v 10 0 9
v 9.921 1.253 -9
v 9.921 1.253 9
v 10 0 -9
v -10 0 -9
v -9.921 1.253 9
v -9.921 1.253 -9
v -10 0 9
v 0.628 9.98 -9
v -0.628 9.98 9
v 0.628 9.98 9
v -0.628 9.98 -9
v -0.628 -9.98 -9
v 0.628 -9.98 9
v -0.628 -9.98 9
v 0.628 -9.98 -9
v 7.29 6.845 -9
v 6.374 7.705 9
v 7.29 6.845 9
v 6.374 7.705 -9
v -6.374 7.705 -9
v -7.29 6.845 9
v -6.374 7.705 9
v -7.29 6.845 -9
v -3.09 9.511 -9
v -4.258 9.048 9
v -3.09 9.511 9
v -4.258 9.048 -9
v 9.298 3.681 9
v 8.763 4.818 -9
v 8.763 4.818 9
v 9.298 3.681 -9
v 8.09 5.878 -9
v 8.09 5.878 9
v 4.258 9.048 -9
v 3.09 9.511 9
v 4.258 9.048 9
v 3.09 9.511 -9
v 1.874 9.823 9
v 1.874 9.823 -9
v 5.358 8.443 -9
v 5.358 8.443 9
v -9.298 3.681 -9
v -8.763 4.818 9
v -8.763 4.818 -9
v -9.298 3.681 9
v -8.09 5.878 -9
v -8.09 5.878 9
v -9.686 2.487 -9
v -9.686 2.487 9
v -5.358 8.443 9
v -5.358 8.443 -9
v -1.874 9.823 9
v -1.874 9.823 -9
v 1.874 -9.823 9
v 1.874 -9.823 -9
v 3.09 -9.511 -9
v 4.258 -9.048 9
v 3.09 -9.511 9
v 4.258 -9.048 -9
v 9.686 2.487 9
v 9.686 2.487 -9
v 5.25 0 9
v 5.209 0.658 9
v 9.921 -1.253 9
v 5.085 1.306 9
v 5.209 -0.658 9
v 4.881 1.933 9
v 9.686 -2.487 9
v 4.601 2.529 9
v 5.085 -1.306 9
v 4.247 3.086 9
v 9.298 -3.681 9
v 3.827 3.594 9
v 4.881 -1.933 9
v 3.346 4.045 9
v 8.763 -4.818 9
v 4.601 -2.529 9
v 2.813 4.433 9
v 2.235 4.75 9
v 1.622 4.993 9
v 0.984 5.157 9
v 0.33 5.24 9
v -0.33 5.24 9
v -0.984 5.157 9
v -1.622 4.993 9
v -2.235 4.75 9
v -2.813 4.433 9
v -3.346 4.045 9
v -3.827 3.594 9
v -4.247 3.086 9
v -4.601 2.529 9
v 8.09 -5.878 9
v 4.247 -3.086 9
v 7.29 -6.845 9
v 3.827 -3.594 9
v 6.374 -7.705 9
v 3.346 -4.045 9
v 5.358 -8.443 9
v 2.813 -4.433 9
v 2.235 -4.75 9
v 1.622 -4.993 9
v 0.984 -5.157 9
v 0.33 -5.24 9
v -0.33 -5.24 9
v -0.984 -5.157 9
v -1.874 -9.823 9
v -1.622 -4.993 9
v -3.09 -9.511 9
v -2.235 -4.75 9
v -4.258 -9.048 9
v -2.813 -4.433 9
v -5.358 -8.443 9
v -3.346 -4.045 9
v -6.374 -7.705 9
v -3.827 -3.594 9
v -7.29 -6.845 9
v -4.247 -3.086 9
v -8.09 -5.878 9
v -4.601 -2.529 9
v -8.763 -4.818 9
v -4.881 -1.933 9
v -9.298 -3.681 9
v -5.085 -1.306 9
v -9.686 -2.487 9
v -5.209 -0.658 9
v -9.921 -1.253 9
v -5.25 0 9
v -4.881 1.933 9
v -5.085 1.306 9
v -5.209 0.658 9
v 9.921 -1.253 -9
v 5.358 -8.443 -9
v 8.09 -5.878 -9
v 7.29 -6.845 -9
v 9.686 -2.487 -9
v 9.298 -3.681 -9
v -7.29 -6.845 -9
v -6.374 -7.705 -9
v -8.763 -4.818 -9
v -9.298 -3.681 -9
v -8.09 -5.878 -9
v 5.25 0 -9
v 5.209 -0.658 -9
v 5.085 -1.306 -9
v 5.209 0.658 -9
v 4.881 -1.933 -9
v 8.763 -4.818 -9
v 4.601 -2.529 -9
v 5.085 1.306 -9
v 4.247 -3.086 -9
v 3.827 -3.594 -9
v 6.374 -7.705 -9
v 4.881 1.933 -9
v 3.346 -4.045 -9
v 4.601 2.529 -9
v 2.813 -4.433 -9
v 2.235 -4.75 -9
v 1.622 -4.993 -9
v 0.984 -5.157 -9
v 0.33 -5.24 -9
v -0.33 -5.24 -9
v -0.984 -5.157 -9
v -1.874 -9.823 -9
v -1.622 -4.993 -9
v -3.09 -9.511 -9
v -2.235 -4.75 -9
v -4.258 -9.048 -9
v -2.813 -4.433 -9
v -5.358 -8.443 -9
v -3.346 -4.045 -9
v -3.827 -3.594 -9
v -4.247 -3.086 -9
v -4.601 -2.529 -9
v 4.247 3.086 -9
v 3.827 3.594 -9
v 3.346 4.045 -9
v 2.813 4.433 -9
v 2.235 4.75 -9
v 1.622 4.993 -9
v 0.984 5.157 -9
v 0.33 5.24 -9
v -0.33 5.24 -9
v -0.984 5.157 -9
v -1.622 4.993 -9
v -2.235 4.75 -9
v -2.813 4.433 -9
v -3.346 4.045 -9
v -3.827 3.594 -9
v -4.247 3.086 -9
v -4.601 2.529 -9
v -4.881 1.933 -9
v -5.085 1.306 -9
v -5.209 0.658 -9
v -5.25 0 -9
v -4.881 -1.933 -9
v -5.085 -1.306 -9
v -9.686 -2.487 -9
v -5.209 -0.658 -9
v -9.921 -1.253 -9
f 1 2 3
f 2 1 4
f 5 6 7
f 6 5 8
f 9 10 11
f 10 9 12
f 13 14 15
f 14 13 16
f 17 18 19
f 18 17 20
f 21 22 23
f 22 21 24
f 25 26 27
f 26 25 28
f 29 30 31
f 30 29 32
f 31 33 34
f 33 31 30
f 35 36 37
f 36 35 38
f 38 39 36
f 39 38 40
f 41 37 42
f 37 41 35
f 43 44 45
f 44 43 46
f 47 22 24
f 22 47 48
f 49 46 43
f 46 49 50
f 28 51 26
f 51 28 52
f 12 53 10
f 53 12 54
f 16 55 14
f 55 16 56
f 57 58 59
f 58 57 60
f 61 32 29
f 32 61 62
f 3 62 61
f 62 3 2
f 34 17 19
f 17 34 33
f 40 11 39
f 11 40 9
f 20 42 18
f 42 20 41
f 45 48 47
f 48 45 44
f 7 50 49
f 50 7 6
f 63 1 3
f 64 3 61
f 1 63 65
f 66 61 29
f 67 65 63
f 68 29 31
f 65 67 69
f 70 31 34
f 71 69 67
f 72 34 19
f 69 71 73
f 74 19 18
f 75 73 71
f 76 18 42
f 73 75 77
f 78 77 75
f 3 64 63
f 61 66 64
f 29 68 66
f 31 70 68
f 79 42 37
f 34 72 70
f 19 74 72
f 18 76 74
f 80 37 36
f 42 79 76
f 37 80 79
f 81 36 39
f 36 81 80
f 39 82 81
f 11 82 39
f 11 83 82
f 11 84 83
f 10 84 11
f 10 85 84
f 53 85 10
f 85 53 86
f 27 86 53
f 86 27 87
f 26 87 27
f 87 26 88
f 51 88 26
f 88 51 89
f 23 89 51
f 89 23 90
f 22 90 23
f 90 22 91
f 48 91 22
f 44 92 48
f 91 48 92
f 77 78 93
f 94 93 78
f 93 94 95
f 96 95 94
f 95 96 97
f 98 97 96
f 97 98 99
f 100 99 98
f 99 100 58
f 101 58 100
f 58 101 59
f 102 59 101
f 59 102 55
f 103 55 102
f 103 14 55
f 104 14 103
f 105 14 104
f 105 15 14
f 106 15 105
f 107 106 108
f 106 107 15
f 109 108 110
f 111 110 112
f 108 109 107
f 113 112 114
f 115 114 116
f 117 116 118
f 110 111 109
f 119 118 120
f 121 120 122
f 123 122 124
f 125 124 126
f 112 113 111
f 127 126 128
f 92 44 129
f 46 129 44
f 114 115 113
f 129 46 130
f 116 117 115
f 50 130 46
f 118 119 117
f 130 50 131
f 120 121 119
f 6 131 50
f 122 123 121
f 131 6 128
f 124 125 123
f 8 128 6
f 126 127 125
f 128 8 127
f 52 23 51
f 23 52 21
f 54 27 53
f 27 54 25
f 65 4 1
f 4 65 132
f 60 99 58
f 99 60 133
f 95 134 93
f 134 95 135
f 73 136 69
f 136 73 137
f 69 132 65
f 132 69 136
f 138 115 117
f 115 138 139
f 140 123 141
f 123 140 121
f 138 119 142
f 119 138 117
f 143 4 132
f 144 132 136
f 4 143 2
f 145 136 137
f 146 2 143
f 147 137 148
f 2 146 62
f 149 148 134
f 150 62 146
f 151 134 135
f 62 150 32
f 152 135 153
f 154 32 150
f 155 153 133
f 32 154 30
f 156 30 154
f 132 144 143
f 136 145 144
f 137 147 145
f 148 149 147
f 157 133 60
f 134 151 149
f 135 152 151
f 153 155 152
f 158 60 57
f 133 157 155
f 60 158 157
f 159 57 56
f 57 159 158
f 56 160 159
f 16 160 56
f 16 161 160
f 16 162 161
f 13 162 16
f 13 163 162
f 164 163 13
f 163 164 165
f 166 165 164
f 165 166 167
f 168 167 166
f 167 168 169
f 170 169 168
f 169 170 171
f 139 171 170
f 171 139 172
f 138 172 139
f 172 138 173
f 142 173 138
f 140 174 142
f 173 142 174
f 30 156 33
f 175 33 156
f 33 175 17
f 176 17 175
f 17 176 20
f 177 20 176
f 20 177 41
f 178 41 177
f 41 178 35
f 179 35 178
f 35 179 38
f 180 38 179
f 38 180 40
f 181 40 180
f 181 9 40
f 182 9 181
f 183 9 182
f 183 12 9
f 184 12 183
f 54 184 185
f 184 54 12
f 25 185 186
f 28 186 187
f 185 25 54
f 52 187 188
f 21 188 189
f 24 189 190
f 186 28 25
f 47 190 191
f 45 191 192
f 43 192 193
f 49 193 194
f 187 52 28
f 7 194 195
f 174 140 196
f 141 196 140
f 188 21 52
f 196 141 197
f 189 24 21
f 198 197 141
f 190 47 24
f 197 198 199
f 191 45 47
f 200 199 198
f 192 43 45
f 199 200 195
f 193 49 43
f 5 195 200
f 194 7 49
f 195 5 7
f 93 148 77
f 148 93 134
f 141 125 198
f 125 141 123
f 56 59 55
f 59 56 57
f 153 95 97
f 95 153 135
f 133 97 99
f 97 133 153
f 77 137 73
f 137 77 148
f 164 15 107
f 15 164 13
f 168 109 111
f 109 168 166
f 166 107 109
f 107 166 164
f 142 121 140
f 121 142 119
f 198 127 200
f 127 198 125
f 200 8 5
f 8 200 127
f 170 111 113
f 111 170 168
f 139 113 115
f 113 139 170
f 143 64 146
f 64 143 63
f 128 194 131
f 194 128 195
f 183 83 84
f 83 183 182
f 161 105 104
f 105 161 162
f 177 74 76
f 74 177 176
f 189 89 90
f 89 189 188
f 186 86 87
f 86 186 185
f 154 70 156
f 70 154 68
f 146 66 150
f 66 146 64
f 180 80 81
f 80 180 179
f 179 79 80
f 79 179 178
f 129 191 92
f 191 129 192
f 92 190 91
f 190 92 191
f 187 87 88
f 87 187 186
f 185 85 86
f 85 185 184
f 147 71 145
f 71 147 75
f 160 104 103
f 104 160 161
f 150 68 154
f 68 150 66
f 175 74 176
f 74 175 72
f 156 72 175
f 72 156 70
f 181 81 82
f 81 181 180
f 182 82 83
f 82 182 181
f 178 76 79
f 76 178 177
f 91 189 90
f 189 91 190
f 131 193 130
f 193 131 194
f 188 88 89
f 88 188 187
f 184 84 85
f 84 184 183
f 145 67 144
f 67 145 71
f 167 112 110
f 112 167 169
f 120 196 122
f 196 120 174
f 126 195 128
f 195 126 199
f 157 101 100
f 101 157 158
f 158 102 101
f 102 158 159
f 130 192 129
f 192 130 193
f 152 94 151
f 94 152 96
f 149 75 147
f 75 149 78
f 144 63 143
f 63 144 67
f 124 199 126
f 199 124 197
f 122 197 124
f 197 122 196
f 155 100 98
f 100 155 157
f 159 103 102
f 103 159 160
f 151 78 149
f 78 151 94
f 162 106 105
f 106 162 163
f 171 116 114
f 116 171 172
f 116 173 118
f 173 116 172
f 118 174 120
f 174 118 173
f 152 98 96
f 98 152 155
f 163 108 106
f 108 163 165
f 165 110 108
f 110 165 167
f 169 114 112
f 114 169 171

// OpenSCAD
$fn = 50;


difference() {
	union() {
		translate(v = [0, 0, -9.0000000000]) {
			cylinder(h = 18, r = 10.0000000000);
		}
	}
	union() {
		translate(v = [0, 0, -100.0000000000]) {
			cylinder(h = 200, r = 5.2500000000);
		}
	}
}
